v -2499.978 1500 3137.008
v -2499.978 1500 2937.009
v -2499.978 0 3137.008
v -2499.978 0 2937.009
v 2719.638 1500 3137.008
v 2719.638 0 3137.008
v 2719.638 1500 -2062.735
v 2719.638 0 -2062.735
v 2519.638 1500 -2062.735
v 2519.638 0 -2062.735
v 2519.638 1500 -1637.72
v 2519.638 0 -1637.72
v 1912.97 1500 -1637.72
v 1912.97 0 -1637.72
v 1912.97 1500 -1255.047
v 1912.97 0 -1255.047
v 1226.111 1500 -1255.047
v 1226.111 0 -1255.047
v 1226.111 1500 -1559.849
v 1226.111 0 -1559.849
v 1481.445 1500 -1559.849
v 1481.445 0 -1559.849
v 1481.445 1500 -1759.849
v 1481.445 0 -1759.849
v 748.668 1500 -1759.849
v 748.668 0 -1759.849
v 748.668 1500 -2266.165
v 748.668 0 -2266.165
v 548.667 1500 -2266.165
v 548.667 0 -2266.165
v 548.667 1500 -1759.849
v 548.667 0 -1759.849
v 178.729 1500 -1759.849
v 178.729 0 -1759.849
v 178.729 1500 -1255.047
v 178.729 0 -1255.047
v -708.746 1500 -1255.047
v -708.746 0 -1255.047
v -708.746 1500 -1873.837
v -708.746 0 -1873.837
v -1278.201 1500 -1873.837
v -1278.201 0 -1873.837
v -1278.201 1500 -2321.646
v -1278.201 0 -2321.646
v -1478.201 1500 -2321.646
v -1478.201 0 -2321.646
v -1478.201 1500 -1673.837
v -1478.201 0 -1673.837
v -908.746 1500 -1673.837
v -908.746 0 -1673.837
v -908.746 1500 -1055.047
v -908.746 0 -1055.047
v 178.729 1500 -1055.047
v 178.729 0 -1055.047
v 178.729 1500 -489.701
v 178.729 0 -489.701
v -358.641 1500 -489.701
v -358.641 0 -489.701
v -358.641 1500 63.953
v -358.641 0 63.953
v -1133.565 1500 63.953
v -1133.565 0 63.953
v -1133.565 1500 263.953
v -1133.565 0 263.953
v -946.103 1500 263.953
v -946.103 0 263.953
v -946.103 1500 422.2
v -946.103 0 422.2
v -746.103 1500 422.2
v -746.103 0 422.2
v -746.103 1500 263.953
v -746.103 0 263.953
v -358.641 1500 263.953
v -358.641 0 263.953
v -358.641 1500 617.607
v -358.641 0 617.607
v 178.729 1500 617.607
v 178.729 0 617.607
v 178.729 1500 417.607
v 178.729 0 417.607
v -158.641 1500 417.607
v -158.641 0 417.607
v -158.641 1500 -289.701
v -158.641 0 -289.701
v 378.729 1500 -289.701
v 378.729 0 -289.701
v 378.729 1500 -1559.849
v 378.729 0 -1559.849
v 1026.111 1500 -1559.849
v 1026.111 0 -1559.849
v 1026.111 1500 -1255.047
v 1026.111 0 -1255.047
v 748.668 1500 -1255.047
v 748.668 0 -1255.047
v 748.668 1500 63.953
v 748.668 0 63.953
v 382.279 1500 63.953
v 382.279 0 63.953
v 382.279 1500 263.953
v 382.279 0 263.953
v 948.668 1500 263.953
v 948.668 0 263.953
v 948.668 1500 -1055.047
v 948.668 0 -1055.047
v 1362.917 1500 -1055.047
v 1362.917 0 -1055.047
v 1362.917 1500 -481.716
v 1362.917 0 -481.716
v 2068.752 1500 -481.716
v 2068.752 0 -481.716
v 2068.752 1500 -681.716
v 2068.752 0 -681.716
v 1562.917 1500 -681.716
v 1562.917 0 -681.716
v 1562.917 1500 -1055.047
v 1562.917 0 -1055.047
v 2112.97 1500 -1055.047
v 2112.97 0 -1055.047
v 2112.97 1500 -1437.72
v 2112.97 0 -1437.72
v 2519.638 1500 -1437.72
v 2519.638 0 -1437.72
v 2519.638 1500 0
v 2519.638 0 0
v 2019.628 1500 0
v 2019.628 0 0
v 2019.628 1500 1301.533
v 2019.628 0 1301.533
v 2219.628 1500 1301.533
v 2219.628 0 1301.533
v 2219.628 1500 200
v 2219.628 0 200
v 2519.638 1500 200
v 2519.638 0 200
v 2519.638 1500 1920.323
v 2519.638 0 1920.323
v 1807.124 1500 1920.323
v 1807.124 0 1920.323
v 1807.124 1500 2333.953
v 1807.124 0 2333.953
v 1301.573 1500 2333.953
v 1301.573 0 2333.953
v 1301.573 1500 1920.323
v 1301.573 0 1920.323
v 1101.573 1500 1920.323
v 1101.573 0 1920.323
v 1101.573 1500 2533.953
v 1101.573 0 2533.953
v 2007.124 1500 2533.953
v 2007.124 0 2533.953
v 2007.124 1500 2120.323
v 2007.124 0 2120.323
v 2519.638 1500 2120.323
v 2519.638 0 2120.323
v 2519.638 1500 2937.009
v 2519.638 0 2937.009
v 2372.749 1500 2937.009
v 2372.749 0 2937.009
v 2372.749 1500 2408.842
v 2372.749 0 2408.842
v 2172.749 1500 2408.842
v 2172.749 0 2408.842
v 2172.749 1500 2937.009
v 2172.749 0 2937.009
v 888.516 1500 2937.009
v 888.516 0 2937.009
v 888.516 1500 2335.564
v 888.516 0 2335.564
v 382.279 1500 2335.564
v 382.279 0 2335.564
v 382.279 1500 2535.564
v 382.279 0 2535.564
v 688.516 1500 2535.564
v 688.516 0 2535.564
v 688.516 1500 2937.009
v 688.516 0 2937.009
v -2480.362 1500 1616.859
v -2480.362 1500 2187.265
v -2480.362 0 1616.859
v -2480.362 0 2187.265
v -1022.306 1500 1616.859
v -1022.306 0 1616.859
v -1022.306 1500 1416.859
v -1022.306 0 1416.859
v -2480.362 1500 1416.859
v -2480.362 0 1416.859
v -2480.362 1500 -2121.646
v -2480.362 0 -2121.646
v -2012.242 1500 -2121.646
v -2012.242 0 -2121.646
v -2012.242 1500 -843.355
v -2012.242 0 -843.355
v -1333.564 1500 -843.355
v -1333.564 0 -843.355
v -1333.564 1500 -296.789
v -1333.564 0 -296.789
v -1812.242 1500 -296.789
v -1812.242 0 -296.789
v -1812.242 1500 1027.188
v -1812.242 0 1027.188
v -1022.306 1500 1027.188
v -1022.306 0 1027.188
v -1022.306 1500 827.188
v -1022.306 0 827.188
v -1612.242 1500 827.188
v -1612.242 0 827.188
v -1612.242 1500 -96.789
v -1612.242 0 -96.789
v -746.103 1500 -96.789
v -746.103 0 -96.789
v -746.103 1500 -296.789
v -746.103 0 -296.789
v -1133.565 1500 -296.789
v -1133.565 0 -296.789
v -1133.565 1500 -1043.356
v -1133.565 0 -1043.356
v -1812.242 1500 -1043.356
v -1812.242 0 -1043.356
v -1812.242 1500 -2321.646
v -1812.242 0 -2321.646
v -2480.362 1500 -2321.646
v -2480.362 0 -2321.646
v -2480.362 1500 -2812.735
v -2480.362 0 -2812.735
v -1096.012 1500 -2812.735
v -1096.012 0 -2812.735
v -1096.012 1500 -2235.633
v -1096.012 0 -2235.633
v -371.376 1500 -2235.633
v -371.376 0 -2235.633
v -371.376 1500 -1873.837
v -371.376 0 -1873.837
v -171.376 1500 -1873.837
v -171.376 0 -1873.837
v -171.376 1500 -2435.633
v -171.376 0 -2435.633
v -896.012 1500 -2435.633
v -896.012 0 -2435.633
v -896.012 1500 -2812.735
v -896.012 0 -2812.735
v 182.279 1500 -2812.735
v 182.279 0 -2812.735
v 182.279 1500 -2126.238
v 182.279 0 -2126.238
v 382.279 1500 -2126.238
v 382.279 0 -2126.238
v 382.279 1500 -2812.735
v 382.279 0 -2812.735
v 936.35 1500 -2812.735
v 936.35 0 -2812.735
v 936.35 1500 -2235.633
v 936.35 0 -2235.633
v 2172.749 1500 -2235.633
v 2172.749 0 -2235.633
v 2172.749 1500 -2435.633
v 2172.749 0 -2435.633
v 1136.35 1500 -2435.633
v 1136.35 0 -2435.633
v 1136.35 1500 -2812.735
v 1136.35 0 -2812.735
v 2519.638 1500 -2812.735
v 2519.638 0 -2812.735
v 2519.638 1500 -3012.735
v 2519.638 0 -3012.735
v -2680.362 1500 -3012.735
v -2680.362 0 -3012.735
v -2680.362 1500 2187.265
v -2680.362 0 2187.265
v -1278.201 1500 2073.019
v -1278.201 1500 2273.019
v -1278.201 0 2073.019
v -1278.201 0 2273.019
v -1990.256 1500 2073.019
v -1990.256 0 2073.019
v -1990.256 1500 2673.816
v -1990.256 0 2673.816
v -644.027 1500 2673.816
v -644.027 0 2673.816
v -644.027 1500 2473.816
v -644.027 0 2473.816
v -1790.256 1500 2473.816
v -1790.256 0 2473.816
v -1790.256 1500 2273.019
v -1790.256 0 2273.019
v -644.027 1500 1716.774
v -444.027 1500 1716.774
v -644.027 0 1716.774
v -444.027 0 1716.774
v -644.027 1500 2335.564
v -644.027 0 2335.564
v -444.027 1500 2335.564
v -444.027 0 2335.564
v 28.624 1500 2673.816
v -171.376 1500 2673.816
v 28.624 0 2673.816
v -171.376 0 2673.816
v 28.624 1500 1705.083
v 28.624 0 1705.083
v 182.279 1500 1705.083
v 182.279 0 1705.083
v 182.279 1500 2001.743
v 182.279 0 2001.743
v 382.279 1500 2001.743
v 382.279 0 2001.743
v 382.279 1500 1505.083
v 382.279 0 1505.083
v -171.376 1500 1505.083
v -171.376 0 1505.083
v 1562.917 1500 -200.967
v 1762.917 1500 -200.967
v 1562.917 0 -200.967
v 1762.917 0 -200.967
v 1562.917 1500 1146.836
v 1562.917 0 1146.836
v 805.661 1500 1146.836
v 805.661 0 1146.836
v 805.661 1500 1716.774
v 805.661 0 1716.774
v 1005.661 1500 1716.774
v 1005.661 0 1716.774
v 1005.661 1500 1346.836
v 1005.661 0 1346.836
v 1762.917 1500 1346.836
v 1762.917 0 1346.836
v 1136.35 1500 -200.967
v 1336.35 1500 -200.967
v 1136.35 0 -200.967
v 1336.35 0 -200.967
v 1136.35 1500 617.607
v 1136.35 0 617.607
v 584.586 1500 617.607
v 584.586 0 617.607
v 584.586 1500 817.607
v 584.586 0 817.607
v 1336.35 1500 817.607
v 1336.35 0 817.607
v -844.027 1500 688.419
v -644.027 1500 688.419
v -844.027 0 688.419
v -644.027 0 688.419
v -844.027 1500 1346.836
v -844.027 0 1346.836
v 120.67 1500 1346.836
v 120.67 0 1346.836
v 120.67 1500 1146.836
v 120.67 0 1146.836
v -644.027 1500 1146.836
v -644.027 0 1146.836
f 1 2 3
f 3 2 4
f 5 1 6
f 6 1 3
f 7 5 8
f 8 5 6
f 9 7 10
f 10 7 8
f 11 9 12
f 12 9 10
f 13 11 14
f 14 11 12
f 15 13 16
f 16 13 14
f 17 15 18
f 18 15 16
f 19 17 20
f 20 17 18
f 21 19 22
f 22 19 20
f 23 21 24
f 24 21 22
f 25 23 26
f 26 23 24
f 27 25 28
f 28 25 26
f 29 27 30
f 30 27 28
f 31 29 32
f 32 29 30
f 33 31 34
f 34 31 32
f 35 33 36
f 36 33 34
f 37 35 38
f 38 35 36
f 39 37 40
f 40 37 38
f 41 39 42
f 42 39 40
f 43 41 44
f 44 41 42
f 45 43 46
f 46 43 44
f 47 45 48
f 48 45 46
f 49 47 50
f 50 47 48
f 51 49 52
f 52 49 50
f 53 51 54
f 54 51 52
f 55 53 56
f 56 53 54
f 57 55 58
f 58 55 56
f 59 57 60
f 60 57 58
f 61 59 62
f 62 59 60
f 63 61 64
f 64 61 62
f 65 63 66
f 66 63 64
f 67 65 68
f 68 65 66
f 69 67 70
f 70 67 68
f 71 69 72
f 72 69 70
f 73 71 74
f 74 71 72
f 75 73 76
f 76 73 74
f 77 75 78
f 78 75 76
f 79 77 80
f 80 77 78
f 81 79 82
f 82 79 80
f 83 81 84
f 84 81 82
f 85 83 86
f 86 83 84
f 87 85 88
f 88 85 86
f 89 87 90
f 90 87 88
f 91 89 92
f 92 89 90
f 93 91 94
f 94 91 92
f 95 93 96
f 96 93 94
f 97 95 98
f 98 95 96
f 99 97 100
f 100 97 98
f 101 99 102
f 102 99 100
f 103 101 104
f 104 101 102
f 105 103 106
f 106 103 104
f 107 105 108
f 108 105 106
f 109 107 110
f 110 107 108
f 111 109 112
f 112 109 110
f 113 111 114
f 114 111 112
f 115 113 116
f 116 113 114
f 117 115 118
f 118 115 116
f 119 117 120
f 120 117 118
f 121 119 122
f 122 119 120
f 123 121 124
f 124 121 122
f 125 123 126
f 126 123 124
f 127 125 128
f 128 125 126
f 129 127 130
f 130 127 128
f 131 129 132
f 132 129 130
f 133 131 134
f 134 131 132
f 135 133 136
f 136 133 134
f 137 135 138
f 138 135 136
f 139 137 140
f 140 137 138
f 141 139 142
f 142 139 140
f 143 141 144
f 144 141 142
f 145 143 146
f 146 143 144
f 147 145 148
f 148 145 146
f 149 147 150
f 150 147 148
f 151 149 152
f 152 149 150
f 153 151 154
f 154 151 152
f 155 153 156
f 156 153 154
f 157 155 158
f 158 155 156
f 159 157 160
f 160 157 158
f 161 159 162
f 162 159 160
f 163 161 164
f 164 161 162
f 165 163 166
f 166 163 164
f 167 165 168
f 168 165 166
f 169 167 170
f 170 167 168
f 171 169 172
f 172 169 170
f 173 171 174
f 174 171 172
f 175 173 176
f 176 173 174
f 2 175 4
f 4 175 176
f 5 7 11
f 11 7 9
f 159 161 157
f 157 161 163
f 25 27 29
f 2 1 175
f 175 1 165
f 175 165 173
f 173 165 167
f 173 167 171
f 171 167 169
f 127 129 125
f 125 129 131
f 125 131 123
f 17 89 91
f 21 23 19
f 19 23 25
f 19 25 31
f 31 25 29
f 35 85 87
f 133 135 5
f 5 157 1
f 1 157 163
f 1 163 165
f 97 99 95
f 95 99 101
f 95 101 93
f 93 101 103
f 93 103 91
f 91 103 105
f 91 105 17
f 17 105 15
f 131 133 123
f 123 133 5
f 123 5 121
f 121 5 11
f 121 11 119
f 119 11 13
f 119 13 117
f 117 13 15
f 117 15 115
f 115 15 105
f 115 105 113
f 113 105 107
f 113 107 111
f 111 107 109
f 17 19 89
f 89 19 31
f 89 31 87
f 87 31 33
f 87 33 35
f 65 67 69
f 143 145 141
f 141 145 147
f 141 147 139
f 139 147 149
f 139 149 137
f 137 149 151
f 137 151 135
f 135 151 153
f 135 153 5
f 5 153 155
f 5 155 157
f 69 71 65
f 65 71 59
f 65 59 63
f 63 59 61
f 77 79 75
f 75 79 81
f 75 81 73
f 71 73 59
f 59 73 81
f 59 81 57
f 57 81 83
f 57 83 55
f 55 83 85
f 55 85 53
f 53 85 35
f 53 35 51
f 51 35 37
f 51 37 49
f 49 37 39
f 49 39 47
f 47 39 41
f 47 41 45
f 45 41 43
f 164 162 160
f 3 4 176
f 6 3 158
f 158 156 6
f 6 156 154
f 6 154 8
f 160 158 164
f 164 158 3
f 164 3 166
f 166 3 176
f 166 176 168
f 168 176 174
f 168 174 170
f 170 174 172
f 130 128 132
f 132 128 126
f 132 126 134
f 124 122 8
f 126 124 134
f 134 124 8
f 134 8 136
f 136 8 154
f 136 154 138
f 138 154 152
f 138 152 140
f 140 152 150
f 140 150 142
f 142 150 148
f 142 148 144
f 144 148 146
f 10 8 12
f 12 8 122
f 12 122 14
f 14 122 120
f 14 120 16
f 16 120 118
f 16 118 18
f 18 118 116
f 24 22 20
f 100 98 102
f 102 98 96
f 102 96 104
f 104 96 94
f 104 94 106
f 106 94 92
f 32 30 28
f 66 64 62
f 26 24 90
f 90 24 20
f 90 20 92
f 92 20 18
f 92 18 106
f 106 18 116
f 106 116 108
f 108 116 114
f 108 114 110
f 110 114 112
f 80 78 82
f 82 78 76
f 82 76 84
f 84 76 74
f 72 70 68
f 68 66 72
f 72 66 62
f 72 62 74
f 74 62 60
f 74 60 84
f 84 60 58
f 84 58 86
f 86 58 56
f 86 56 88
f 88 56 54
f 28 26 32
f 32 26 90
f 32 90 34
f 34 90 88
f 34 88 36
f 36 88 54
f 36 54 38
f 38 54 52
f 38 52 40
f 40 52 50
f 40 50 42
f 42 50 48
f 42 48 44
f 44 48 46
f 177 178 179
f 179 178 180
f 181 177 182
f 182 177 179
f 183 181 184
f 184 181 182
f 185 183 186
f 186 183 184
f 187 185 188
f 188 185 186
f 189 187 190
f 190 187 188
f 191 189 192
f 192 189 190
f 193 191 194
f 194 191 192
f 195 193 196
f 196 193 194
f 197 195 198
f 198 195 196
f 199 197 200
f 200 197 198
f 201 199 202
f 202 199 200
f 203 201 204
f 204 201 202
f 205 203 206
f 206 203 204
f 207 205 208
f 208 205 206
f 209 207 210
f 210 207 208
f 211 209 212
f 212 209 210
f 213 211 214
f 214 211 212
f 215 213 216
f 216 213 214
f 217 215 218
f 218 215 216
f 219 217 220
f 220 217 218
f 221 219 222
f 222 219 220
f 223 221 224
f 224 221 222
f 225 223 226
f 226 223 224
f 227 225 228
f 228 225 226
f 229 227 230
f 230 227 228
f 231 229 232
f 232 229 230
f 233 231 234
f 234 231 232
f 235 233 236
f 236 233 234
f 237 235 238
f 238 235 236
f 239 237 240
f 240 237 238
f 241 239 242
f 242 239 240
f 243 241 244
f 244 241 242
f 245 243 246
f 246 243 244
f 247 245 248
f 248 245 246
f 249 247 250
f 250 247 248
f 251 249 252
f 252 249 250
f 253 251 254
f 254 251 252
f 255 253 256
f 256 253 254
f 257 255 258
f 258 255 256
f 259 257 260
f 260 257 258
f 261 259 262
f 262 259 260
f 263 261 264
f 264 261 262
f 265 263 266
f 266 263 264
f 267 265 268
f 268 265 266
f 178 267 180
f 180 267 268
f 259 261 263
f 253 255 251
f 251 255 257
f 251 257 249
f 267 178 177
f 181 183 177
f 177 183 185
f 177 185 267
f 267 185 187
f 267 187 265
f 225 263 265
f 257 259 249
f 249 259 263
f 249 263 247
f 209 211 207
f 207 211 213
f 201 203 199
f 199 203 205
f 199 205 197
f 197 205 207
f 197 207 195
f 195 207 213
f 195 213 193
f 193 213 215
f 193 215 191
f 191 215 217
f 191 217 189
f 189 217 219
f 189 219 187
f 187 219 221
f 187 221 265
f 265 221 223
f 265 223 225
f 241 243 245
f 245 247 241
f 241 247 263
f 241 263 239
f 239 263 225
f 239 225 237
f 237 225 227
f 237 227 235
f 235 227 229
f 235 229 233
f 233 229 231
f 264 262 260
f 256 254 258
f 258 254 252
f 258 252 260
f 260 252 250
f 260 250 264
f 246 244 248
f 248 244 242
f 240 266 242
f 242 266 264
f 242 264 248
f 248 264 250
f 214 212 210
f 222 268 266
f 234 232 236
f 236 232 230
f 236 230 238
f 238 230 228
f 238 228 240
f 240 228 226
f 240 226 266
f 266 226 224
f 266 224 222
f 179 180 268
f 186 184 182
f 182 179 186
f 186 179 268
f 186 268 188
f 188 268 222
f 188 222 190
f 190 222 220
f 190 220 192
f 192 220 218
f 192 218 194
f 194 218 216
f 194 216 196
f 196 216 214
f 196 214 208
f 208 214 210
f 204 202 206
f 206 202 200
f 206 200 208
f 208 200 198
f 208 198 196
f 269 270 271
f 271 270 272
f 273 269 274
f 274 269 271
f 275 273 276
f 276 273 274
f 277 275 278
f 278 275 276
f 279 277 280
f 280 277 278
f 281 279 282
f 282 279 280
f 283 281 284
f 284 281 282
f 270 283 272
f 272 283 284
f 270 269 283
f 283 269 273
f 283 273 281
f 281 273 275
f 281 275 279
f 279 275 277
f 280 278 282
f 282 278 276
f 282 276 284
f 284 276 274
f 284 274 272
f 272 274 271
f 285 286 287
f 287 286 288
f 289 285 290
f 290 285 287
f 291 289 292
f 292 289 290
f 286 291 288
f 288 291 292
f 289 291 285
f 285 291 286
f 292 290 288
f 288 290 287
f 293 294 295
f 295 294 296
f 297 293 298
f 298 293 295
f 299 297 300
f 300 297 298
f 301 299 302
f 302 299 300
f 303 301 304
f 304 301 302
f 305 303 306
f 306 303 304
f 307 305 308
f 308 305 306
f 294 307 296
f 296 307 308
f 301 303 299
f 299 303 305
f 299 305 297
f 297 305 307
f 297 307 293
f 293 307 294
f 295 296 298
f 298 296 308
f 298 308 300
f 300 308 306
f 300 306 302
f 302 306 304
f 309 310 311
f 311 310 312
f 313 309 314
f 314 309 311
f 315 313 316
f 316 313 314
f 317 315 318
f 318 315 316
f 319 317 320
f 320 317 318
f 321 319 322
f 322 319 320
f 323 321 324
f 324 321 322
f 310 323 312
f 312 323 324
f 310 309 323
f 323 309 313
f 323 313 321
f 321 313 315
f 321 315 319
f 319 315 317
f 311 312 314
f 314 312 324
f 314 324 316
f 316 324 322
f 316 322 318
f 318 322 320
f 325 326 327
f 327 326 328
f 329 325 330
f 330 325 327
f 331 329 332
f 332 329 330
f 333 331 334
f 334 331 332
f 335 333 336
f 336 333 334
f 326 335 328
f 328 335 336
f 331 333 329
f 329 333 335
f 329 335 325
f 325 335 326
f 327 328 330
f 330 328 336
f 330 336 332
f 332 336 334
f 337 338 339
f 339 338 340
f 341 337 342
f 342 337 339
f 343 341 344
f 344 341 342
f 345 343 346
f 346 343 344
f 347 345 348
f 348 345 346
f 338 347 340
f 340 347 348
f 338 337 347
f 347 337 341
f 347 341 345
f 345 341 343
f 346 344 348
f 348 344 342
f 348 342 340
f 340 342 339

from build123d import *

# Parameters (mm, degrees)
BOSS_EXTRUDE1_DEPTH   = 1500
BOSS_EXTRUDE1_2_DEPTH = 1500
BOSS_EXTRUDE1_3_DEPTH = 1500
SKETCH1_W             = 200
SKETCH1_H             = 618.790113416
BOSS_EXTRUDE1_4_DEPTH = 1500
BOSS_EXTRUDE1_5_DEPTH = 1500
BOSS_EXTRUDE1_6_DEPTH = 1500
BOSS_EXTRUDE1_7_DEPTH = 1500
BOSS_EXTRUDE1_8_DEPTH = 1500


with BuildPart() as part:
    # Sketch1 → Boss-Extrude1 (new body)
    with BuildSketch(Plane(origin=(0, 0, 0), x_dir=(1, 0, 0), z_dir=(0, 1, 0))):
        Polygon((-2480.362214578, 2812.735166706), (-2480.362214578, 2321.64564392), (-1812.242182119, 2321.64564392), (-1812.242182119, 1043.355541206), (-1133.564560671, 1043.355541206), (-1133.564560671, 296.789317438), (-746.102862047, 296.789317438), (-746.102862047, 96.789317438), (-1612.242182119, 96.789317438), (-1612.242182119, -827.188337518), (-1022.305934204, -827.188337518), (-1022.305934204, -1027.188337518), (-1812.242182119, -1027.188337518), (-1812.242182119, 296.789317438), (-1333.564560671, 296.789317438), (-1333.564560671, 843.355541206), (-2012.242182119, 843.355541206), (-2012.242182119, 2121.64564392), (-2480.362214578, 2121.64564392), (-2480.362214578, -1416.859057793), (-1022.305934204, -1416.859057793), (-1022.305934204, -1616.859057793), (-2480.362214578, -1616.859057793), (-2480.362214578, -2187.264833294), (-2680.362214578, -2187.264833294), (-2680.362214578, 3012.735166706), (2519.637785422, 3012.735166706), (2519.637785422, 2812.735166706), (1136.350352087, 2812.735166706), (1136.350352087, 2435.633296391), (2172.749284261, 2435.633296391), (2172.749284261, 2235.633296391), (936.350352087, 2235.633296391), (936.350352087, 2812.735166706), (382.27857764, 2812.735166706), (382.27857764, 2126.238239683), (182.27857764, 2126.238239683), (182.27857764, 2812.735166706), (-896.011525074, 2812.735166706), (-896.011525074, 2435.633296391), (-171.375734363, 2435.633296391), (-171.375734363, 1873.837009211), (-371.375734363, 1873.837009211), (-371.375734363, 2235.633296391), (-1096.011525074, 2235.633296391), (-1096.011525074, 2812.735166706), align=None)
    extrude(amount=BOSS_EXTRUDE1_DEPTH)


with BuildPart() as body_2:
    # Sketch1 → Boss-Extrude1 2 (new body)
    with BuildSketch(Plane(origin=(0, 0, 0), x_dir=(1, 0, 0), z_dir=(0, 1, 0))):
        Polygon((-2499.978238149, -2937.008263822), (688.515824828, -2937.008263822), (688.515824828, -2535.564157051), (382.27857764, -2535.564157051), (382.27857764, -2335.564157051), (888.515824828, -2335.564157051), (888.515824828, -2937.008263822), (2172.749284261, -2937.008263822), (2172.749284261, -2408.84193364), (2372.749284261, -2408.84193364), (2372.749284261, -2937.008263822), (2519.637785422, -2937.008263822), (2519.637785422, -2120.323423048), (2007.124233532, -2120.323423048), (2007.124233532, -2533.953048433), (1101.57337026, -2533.953048433), (1101.57337026, -1920.323423048), (1301.57337026, -1920.323423048), (1301.57337026, -2333.953048433), (1807.124233532, -2333.953048433), (1807.124233532, -1920.323423048), (2519.637785422, -1920.323423048), (2519.637785422, -200), (2219.628189579, -200), (2219.628189579, -1301.533309633), (2019.628189579, -1301.533309633), (2019.628189579, 0), (2519.637785422, 0), (2519.637785422, 1437.719729092), (2112.969910827, 1437.719729092), (2112.969910827, 1055.046895796), (1562.916651679, 1055.046895796), (1562.916651679, 681.715489412), (2068.751993019, 681.715489412), (2068.751993019, 481.715489412), (1362.916651679, 481.715489412), (1362.916651679, 1055.046895796), (948.667460584, 1055.046895796), (948.667460584, -263.953082801), (382.27857764, -263.953082801), (382.27857764, -63.953082801), (748.667460584, -63.953082801), (748.667460584, 1255.046895796), (1026.110916613, 1255.046895796), (1026.110916613, 1559.84935674), (378.729198227, 1559.84935674), (378.729198227, 289.701229202), (-158.641163423, 289.701229202), (-158.641163423, -417.607394805), (178.729198227, -417.607394805), (178.729198227, -617.607394805), (-358.641163423, -617.607394805), (-358.641163423, -263.953082801), (-746.102862047, -263.953082801), (-746.102862047, -422.199990568), (-946.102862047, -422.199990568), (-946.102862047, -263.953082801), (-1133.564560671, -263.953082801), (-1133.564560671, -63.953082801), (-358.641163423, -63.953082801), (-358.641163423, 489.701229202), (178.729198227, 489.701229202), (178.729198227, 1055.046895796), (-908.746096014, 1055.046895796), (-908.746096014, 1673.837009211), (-1478.200775078, 1673.837009211), (-1478.200775078, 2321.64564392), (-1278.200775078, 2321.64564392), (-1278.200775078, 1873.837009211), (-708.746096014, 1873.837009211), (-708.746096014, 1255.046895796), (178.729198227, 1255.046895796), (178.729198227, 1759.84935674), (548.667460584, 1759.84935674), (548.667460584, 2266.164719412), (748.667460584, 2266.164719412), (748.667460584, 1759.84935674), (1481.445226471, 1759.84935674), (1481.445226471, 1559.84935674), (1226.110916613, 1559.84935674), (1226.110916613, 1255.046895796), (1912.969910827, 1255.046895796), (1912.969910827, 1637.719729092), (2519.637785422, 1637.719729092), (2519.637785422, 2062.735166706), (2719.637785422, 2062.735166706), (2719.637785422, -3137.008263822), (-2499.978238149, -3137.008263822), align=None)
    extrude(amount=BOSS_EXTRUDE1_2_DEPTH)


with BuildPart() as body_3:
    # Sketch1 → Boss-Extrude1 3 (new body)
    with BuildSketch(Plane(origin=(0, 0, 0), x_dir=(1, 0, 0), z_dir=(0, 1, 0))):
        Polygon((-1278.200775078, -2073.019426307), (-1990.255984466, -2073.019426307), (-1990.255984466, -2673.816009228), (-644.026604217, -2673.816009228), (-644.026604217, -2473.816009228), (-1790.255984466, -2473.816009228), (-1790.255984466, -2273.019426307), (-1278.200775078, -2273.019426307), align=None)
    extrude(amount=BOSS_EXTRUDE1_3_DEPTH)


with BuildPart() as body_4:
    # Sketch1 → Boss-Extrude1 4 (new body)
    with BuildSketch(Plane(origin=(0, 0, 0), x_dir=(1, 0, 0), z_dir=(0, 1, 0))):
        with Locations((-544.026604217, -2026.169100343)):
            Rectangle(SKETCH1_W, SKETCH1_H)
    extrude(amount=BOSS_EXTRUDE1_4_DEPTH)


with BuildPart() as body_5:
    # Sketch1 → Boss-Extrude1 5 (new body)
    with BuildSketch(Plane(origin=(0, 0, 0), x_dir=(1, 0, 0), z_dir=(0, 1, 0))):
        Polygon((-171.375734363, -2673.816009228), (-171.375734363, -1505.082689046), (382.27857764, -1505.082689046), (382.27857764, -2001.743174813), (182.27857764, -2001.743174813), (182.27857764, -1705.082689046), (28.624265637, -1705.082689046), (28.624265637, -2673.816009228), align=None)
    extrude(amount=BOSS_EXTRUDE1_5_DEPTH)


with BuildPart() as body_6:
    # Sketch1 → Boss-Extrude1 6 (new body)
    with BuildSketch(Plane(origin=(0, 0, 0), x_dir=(1, 0, 0), z_dir=(0, 1, 0))):
        Polygon((1562.916651679, 200.966502149), (1562.916651679, -1146.835781279), (805.66128682, -1146.835781279), (805.66128682, -1716.774043635), (1005.66128682, -1716.774043635), (1005.66128682, -1346.835781279), (1762.916651679, -1346.835781279), (1762.916651679, 200.966502149), align=None)
    extrude(amount=BOSS_EXTRUDE1_6_DEPTH)


with BuildPart() as body_7:
    # Sketch1 → Boss-Extrude1 7 (new body)
    with BuildSketch(Plane(origin=(0, 0, 0), x_dir=(1, 0, 0), z_dir=(0, 1, 0))):
        Polygon((1136.350352087, 200.966502149), (1136.350352087, -617.607394805), (584.586384409, -617.607394805), (584.586384409, -817.607394805), (1336.350352087, -817.607394805), (1336.350352087, 200.966502149), align=None)
    extrude(amount=BOSS_EXTRUDE1_7_DEPTH)


with BuildPart() as body_8:
    # Sketch1 → Boss-Extrude1 8 (new body)
    with BuildSketch(Plane(origin=(0, 0, 0), x_dir=(1, 0, 0), z_dir=(0, 1, 0))):
        Polygon((-644.026604217, -688.419124288), (-644.026604217, -1146.835781279), (120.669689889, -1146.835781279), (120.669689889, -1346.835781279), (-844.026604217, -1346.835781279), (-844.026604217, -688.419124288), align=None)
    extrude(amount=BOSS_EXTRUDE1_8_DEPTH)


solid = Compound([part.part, body_2.part, body_3.part, body_4.part, body_5.part, body_6.part, body_7.part, body_8.part])
